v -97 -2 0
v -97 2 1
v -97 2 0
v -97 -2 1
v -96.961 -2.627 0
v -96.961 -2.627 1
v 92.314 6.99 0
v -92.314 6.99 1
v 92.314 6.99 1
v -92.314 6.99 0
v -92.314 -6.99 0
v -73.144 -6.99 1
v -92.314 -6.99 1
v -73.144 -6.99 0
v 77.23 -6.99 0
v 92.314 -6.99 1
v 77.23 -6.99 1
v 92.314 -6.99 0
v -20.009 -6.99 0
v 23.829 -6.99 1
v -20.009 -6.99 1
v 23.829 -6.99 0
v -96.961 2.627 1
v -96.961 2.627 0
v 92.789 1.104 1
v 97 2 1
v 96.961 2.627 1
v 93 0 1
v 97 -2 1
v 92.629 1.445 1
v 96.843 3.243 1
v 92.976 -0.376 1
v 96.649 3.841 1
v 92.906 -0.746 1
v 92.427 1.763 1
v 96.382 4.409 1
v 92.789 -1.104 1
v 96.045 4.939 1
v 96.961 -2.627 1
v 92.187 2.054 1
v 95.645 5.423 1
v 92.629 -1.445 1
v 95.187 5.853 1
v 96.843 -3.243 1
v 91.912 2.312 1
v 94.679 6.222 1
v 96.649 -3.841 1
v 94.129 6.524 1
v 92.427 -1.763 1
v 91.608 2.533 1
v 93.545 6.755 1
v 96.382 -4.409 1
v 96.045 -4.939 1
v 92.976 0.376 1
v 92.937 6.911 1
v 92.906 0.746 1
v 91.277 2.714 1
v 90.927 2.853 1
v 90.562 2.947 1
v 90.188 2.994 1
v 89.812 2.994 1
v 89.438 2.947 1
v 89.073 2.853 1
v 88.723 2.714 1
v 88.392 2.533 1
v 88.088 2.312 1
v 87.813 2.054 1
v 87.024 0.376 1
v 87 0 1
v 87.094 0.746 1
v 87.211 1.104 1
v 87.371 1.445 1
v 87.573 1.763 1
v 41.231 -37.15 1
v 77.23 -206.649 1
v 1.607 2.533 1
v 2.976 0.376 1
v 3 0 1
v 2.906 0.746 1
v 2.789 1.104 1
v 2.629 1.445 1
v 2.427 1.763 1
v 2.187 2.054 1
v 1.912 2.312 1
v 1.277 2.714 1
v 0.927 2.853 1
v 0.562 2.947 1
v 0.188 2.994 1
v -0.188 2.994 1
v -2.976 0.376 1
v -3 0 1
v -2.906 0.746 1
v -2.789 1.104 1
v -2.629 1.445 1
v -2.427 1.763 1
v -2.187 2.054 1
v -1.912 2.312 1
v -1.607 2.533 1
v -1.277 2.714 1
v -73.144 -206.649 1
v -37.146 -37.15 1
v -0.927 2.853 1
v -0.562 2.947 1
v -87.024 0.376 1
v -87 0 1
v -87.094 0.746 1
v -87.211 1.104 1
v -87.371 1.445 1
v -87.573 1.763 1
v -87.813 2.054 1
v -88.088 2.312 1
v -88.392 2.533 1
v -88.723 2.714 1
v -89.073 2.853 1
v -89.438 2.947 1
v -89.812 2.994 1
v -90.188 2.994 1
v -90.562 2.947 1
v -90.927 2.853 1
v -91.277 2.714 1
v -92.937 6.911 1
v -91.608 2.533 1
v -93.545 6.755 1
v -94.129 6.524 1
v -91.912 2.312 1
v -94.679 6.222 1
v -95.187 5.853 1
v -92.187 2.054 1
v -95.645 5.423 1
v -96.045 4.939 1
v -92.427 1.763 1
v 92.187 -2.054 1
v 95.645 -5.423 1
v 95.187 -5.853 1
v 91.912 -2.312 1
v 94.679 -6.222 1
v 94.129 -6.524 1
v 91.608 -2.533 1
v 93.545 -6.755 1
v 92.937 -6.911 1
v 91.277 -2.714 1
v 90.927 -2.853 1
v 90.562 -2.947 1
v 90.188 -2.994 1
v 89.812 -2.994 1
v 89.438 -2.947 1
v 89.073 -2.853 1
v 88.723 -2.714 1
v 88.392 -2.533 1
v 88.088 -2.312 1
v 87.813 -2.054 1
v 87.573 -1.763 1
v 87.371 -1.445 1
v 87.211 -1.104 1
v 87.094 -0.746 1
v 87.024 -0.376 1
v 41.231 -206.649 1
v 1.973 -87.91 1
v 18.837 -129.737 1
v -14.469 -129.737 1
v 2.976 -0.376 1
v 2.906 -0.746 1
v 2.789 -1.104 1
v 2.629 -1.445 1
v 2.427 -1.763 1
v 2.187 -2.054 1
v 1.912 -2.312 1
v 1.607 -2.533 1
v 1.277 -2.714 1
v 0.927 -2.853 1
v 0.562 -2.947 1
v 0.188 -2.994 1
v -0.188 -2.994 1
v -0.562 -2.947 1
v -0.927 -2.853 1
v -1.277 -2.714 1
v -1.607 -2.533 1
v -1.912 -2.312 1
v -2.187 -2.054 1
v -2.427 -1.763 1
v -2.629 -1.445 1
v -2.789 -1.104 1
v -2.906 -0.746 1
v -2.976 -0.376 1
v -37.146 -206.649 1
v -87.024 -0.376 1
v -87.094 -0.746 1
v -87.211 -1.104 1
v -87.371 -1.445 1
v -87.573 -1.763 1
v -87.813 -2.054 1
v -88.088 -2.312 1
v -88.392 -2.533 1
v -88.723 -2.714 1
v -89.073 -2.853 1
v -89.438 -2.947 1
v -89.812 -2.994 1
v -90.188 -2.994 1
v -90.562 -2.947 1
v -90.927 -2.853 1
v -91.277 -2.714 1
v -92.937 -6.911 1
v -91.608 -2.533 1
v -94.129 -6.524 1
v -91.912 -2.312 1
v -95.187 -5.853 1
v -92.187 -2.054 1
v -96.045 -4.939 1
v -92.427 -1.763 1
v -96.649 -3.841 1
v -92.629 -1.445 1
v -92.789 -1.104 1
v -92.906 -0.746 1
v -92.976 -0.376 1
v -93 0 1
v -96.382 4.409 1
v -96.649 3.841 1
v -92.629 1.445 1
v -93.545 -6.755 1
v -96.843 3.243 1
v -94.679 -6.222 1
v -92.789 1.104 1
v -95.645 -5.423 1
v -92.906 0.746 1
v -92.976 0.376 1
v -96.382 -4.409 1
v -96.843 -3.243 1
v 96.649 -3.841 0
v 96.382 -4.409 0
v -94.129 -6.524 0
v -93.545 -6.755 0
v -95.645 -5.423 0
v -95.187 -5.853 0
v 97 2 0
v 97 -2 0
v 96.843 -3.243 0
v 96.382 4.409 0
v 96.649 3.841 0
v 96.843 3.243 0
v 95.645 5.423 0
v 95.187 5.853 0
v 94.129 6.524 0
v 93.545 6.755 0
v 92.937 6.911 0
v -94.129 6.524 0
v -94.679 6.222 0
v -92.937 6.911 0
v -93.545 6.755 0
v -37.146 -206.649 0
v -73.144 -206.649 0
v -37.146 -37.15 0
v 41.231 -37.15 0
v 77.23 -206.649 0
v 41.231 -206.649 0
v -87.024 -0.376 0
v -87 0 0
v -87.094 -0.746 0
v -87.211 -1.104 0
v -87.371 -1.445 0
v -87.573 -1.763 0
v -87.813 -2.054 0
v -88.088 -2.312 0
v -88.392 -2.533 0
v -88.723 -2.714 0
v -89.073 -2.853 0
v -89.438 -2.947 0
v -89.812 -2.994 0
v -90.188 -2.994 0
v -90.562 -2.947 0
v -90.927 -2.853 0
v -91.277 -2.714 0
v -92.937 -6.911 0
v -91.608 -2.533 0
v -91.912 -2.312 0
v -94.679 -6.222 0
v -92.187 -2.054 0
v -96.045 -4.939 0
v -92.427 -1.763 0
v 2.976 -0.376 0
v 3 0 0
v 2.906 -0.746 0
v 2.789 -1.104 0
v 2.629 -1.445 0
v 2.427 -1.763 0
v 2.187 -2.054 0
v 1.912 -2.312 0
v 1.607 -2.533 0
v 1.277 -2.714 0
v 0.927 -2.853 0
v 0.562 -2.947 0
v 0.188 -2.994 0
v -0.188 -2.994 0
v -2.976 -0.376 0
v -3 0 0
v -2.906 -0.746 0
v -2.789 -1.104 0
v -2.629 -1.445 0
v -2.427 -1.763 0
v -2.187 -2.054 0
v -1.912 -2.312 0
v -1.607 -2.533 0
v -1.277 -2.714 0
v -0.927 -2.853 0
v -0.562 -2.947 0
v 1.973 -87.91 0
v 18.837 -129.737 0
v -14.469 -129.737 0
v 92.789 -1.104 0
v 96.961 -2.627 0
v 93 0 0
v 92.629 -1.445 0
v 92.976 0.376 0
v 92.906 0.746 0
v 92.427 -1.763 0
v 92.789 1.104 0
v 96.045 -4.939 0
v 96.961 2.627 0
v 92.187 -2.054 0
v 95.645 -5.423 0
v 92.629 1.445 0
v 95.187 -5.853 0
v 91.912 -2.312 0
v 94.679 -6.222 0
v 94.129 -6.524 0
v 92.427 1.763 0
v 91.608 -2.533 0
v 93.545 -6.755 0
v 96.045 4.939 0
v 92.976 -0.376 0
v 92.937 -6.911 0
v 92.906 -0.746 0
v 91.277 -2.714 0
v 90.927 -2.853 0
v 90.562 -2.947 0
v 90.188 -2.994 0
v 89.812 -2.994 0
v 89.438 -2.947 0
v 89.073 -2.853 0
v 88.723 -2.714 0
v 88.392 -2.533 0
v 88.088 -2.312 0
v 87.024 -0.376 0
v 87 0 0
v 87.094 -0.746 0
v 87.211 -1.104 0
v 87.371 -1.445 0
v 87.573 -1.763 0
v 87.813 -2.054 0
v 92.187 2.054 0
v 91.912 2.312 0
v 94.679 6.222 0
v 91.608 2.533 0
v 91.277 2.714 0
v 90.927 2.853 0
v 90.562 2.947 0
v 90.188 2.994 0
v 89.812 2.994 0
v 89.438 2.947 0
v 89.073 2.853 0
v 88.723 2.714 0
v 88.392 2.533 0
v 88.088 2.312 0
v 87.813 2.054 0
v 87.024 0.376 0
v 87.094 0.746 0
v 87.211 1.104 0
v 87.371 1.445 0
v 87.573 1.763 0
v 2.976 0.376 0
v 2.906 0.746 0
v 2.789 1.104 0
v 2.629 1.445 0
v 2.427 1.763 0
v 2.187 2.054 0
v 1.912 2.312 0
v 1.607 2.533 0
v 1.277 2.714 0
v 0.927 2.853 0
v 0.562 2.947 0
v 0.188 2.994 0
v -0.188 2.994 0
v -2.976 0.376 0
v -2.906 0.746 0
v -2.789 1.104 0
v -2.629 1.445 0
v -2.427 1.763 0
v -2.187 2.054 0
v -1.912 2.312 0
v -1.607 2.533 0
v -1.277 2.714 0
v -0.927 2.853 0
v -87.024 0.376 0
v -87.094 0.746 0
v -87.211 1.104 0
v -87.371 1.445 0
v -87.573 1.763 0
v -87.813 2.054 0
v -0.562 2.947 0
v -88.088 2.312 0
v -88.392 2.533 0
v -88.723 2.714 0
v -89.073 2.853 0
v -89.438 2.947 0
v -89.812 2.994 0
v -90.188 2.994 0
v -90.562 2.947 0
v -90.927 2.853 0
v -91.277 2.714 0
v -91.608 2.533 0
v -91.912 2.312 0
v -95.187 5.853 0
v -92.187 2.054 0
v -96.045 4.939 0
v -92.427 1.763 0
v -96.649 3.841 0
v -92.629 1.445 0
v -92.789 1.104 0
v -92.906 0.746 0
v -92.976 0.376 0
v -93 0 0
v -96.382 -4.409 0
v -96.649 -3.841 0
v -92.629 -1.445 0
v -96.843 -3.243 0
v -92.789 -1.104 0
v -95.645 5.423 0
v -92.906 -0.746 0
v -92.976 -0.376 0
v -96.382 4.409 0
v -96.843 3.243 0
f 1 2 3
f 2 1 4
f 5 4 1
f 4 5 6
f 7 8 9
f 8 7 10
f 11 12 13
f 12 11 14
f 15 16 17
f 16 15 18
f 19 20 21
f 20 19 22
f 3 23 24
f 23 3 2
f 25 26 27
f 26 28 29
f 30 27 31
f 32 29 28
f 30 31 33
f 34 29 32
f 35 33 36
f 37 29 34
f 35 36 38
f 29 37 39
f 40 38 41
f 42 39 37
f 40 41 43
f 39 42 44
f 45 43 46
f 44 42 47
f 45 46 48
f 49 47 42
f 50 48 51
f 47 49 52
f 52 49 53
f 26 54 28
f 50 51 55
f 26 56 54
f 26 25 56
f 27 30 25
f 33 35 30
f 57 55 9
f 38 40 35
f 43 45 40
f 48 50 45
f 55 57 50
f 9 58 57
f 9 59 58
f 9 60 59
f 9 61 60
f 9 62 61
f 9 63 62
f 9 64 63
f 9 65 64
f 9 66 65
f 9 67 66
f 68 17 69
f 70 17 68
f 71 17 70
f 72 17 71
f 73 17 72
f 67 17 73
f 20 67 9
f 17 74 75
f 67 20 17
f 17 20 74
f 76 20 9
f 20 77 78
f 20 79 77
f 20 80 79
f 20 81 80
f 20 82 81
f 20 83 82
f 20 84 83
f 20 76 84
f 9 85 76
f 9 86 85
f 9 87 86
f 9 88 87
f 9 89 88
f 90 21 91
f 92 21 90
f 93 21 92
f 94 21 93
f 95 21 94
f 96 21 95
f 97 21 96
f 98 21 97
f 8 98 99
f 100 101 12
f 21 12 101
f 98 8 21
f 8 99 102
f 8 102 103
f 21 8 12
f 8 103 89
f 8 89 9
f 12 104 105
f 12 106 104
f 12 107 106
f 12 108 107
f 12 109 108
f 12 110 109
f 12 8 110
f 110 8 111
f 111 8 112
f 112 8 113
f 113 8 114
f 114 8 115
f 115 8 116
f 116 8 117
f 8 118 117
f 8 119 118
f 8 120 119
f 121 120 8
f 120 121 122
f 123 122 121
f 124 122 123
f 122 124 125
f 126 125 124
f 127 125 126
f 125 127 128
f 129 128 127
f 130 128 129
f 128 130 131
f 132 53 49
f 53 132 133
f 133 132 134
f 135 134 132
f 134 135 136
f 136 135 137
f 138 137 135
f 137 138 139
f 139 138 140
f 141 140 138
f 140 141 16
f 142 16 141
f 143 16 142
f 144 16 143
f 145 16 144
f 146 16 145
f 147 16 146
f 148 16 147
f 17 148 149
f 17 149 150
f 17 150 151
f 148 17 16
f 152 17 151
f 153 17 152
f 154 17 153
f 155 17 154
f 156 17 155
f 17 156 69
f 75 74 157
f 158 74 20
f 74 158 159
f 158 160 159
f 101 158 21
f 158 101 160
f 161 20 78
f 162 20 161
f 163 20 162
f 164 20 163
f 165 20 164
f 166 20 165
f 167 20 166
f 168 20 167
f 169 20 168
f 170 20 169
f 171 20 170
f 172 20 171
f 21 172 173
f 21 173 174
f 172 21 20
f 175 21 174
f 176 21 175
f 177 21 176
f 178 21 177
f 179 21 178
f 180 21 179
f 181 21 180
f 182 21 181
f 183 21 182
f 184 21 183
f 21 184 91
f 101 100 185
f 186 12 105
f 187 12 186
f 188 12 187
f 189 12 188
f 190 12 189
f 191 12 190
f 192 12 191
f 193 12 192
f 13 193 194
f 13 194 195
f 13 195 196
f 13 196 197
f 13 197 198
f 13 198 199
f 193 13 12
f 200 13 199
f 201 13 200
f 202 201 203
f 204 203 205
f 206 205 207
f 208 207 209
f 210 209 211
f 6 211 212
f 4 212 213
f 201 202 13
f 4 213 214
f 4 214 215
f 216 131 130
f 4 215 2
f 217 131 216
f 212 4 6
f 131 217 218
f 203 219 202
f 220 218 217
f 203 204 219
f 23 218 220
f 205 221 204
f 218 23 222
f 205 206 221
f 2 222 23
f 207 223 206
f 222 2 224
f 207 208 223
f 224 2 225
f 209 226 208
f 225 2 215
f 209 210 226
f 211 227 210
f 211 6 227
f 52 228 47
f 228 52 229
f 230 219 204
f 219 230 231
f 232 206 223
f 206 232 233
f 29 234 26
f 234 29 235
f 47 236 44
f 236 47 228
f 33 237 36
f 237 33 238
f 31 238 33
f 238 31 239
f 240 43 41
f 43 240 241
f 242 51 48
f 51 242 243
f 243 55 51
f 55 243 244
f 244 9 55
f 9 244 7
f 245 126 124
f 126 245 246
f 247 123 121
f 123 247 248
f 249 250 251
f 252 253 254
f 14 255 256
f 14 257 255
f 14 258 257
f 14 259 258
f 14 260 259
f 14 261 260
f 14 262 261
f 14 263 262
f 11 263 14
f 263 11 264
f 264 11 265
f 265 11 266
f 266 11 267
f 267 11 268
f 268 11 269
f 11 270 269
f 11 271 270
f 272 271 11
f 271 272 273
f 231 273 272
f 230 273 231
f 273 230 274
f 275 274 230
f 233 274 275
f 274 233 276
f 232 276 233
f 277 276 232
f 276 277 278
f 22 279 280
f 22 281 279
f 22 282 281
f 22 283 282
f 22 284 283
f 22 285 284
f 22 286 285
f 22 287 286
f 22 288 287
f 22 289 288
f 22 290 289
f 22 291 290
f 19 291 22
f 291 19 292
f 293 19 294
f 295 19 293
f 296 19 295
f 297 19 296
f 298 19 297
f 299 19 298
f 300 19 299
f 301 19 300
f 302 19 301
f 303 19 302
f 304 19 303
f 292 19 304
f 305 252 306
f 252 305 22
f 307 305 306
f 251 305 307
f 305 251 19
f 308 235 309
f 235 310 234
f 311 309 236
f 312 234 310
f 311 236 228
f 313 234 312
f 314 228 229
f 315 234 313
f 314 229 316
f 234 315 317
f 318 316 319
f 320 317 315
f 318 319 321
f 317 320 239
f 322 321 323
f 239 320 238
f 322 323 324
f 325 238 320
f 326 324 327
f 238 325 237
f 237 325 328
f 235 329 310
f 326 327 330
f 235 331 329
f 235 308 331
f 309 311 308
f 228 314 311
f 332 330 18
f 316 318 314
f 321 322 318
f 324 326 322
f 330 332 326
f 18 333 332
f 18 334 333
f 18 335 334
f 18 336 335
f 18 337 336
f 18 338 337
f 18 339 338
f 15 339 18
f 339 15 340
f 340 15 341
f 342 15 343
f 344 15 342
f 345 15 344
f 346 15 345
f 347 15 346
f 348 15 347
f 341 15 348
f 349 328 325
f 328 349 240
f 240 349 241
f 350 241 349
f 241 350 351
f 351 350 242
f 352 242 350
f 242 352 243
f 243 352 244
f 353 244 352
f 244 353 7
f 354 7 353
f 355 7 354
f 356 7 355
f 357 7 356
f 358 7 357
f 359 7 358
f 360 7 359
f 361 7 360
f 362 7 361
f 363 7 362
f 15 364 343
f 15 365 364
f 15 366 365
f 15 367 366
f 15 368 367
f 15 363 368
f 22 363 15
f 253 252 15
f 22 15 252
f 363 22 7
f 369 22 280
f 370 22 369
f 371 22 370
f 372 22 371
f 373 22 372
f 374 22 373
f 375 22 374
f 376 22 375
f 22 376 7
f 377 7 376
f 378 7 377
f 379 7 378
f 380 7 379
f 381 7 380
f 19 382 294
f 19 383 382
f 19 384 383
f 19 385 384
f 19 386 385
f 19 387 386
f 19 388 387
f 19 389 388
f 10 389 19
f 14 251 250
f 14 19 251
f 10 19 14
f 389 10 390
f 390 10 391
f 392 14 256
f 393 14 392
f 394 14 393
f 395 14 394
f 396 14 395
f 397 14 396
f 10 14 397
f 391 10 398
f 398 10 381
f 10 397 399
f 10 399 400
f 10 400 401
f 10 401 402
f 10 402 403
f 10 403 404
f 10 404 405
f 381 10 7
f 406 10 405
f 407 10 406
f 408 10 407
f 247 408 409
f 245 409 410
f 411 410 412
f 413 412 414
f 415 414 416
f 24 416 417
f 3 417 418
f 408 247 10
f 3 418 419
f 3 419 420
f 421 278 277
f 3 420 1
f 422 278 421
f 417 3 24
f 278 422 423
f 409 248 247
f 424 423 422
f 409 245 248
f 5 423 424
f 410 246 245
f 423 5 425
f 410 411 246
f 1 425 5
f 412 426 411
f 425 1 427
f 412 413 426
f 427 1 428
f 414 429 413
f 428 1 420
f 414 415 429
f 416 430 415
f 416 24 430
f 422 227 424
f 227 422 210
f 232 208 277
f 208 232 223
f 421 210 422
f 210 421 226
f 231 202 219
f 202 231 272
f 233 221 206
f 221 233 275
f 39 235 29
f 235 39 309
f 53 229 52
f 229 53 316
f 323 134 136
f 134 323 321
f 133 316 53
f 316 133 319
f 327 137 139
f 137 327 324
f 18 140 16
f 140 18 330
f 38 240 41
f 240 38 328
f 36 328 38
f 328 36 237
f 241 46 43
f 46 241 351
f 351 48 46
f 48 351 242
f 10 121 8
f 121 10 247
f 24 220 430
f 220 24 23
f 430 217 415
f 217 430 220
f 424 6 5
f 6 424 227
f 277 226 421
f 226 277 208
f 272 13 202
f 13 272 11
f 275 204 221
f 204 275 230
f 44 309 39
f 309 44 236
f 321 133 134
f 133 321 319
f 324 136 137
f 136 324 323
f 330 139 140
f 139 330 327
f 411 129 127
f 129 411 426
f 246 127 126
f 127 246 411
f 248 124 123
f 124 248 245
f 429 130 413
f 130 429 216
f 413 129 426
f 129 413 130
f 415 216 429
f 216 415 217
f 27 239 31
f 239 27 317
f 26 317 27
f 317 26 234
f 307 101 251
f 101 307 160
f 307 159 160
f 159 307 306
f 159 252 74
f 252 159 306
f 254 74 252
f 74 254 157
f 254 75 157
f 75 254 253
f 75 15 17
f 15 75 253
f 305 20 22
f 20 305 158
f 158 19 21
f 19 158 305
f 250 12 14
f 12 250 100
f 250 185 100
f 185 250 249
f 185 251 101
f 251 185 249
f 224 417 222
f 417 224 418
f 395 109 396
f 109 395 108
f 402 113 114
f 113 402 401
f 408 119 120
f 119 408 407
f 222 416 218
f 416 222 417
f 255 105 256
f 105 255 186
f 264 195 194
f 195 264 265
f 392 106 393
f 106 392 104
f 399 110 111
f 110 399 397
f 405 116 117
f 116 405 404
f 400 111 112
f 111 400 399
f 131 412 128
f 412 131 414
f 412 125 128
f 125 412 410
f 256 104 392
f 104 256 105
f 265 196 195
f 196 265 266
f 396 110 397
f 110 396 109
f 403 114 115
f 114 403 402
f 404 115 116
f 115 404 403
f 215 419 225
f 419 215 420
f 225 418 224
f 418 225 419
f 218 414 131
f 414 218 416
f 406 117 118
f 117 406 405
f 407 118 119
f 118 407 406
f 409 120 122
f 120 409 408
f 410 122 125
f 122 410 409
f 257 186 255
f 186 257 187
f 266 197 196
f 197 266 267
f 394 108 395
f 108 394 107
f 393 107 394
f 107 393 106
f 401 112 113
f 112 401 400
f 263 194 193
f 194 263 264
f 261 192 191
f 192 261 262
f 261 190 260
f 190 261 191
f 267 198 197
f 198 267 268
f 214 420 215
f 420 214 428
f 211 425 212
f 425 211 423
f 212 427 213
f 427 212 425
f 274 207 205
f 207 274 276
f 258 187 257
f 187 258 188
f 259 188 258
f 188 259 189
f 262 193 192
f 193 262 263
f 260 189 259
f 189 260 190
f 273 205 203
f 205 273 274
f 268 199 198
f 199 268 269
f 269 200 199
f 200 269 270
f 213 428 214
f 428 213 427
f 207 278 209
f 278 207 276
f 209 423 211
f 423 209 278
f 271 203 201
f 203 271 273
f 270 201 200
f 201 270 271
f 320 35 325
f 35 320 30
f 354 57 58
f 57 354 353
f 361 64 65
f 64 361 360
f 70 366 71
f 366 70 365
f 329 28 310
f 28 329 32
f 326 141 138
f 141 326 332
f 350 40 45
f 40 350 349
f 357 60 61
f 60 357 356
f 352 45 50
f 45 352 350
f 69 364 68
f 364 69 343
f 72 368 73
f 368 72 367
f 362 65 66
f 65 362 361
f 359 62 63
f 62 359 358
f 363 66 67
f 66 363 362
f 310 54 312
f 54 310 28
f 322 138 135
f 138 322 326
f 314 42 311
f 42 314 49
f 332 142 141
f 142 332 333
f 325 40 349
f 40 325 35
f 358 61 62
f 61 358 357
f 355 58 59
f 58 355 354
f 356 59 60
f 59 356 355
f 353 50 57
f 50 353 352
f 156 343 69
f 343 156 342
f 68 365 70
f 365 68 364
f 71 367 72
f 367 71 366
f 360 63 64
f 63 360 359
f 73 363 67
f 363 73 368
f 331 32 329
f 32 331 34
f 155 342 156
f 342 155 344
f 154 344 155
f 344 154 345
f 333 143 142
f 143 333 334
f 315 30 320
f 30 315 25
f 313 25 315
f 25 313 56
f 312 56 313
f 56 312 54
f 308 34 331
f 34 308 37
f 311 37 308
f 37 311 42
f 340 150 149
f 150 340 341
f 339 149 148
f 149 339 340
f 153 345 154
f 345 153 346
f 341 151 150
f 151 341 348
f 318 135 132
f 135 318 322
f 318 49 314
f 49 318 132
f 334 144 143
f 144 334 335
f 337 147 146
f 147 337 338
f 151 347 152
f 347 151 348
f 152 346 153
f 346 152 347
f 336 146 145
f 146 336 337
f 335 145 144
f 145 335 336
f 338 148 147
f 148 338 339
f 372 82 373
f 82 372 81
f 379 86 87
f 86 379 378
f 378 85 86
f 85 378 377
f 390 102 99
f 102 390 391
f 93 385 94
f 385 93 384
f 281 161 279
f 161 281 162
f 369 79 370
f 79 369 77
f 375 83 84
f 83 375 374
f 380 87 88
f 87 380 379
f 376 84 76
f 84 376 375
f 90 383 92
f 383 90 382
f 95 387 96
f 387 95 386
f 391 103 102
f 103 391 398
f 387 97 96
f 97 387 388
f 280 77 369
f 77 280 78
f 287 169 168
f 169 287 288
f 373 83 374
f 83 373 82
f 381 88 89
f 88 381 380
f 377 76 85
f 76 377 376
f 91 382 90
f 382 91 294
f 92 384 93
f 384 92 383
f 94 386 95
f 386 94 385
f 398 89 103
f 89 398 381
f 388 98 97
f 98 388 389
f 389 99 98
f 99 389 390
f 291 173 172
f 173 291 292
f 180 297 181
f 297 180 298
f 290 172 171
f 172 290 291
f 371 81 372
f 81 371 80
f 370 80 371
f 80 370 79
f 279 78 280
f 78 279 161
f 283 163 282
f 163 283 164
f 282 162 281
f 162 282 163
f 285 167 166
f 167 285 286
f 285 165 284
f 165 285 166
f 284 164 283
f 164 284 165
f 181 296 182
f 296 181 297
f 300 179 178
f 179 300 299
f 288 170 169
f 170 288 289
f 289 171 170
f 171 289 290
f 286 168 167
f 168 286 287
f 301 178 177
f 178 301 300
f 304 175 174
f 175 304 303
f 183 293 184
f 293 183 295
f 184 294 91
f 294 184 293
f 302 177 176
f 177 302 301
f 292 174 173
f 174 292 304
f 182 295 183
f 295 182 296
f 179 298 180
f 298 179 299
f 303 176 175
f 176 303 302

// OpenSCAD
$fn = 50;


difference() {
	union() {
		translate(v = [0, 0, 0]) {
			rotate(a = [0, 0, 0]) {
				hull() {
					translate(v = [-92.0000000000, 2.0000000000, 0]) {
						rotate(a = [0, 0, 0]) {
							translate(v = [0, 0, 0]) {
								rotate(a = [0, 0, 0]) {
									cylinder(h = 1, r = 5);
								}
							}
						}
					}
					translate(v = [92.0000000000, 2.0000000000, 0]) {
						rotate(a = [0, 0, 0]) {
							translate(v = [0, 0, 0]) {
								rotate(a = [0, 0, 0]) {
									cylinder(h = 1, r = 5);
								}
							}
						}
					}
					translate(v = [-92.0000000000, -2.0000000000, 0]) {
						rotate(a = [0, 0, 0]) {
							translate(v = [0, 0, 0]) {
								rotate(a = [0, 0, 0]) {
									cylinder(h = 1, r = 5);
								}
							}
						}
					}
					translate(v = [92.0000000000, -2.0000000000, 0]) {
						rotate(a = [0, 0, 0]) {
							translate(v = [0, 0, 0]) {
								rotate(a = [0, 0, 0]) {
									cylinder(h = 1, r = 5);
								}
							}
						}
					}
				}
			}
		}
		translate(v = [0, 0, 0]) {
			rotate(a = [0, 0, 0]) {
				linear_extrude(height = 1) {
					text(font = "DejaVu Sans Mono:style=Bold", halign = "center", size = 209.0000000000, text = "M", valign = "top");
				}
			}
		}
	}
	union() {
		translate(v = [-90.0000000000, 0.0000000000, -125.0000000000]) {
			rotate(a = [0, 0, 0]) {
				cylinder(h = 250, r = 3.0000000000);
			}
		}
		translate(v = [90.0000000000, 0.0000000000, -125.0000000000]) {
			rotate(a = [0, 0, 0]) {
				cylinder(h = 250, r = 3.0000000000);
			}
		}
		translate(v = [90.0000000000, 0.0000000000, -125.0000000000]) {
			rotate(a = [0, 0, 0]) {
				cylinder(h = 250, r = 3.0000000000);
			}
		}
		translate(v = [0, 0, -125.0000000000]) {
			rotate(a = [0, 0, 0]) {
				cylinder(h = 250, r = 3.0000000000);
			}
		}
	}
}
